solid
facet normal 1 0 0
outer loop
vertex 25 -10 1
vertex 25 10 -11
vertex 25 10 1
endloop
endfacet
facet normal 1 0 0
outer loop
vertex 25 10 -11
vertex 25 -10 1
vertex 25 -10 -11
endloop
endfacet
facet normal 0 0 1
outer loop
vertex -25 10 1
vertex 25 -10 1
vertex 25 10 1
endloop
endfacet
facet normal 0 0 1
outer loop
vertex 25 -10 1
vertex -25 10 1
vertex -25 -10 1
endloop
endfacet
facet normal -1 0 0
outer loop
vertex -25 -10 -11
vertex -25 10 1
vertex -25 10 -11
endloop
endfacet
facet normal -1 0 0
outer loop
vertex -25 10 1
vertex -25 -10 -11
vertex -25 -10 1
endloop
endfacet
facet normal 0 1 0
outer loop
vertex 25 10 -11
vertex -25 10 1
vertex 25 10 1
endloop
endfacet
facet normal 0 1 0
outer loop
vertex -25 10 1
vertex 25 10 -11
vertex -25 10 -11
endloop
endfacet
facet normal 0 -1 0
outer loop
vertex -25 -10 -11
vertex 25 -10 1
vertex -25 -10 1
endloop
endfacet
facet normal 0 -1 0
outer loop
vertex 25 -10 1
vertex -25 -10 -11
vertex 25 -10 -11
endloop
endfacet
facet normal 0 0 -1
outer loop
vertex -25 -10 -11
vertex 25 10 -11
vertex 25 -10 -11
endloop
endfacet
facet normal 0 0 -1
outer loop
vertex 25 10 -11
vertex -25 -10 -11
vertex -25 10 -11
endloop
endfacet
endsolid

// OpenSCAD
// Define the dimensions of the rectangular plate
plate_length = 50;  // Length of the plate
plate_width = 20;   // Width of the plate
plate_thickness = 2; // Thickness of the plate

// Define the spacing between the layers
layer_spacing = 0; // Set spacing to 0 to eliminate gaps and form a compact block

// Function to create a rectangular plate
module rectangular_plate() {
    cube([plate_length, plate_width, plate_thickness], center = true);
}

// Assemble the layers of rectangular plates
module flexible_coupling() {
    for (i = [0:5]) {
        translate([0, 0, -i * plate_thickness]) { // Remove layer_spacing to ensure plates are closely aligned
            rotate([0, 0, 0]) // Ensure plates are perfectly aligned and parallel
                rectangular_plate();
        }
    }
}

// Render the flexible coupling
flexible_coupling();
